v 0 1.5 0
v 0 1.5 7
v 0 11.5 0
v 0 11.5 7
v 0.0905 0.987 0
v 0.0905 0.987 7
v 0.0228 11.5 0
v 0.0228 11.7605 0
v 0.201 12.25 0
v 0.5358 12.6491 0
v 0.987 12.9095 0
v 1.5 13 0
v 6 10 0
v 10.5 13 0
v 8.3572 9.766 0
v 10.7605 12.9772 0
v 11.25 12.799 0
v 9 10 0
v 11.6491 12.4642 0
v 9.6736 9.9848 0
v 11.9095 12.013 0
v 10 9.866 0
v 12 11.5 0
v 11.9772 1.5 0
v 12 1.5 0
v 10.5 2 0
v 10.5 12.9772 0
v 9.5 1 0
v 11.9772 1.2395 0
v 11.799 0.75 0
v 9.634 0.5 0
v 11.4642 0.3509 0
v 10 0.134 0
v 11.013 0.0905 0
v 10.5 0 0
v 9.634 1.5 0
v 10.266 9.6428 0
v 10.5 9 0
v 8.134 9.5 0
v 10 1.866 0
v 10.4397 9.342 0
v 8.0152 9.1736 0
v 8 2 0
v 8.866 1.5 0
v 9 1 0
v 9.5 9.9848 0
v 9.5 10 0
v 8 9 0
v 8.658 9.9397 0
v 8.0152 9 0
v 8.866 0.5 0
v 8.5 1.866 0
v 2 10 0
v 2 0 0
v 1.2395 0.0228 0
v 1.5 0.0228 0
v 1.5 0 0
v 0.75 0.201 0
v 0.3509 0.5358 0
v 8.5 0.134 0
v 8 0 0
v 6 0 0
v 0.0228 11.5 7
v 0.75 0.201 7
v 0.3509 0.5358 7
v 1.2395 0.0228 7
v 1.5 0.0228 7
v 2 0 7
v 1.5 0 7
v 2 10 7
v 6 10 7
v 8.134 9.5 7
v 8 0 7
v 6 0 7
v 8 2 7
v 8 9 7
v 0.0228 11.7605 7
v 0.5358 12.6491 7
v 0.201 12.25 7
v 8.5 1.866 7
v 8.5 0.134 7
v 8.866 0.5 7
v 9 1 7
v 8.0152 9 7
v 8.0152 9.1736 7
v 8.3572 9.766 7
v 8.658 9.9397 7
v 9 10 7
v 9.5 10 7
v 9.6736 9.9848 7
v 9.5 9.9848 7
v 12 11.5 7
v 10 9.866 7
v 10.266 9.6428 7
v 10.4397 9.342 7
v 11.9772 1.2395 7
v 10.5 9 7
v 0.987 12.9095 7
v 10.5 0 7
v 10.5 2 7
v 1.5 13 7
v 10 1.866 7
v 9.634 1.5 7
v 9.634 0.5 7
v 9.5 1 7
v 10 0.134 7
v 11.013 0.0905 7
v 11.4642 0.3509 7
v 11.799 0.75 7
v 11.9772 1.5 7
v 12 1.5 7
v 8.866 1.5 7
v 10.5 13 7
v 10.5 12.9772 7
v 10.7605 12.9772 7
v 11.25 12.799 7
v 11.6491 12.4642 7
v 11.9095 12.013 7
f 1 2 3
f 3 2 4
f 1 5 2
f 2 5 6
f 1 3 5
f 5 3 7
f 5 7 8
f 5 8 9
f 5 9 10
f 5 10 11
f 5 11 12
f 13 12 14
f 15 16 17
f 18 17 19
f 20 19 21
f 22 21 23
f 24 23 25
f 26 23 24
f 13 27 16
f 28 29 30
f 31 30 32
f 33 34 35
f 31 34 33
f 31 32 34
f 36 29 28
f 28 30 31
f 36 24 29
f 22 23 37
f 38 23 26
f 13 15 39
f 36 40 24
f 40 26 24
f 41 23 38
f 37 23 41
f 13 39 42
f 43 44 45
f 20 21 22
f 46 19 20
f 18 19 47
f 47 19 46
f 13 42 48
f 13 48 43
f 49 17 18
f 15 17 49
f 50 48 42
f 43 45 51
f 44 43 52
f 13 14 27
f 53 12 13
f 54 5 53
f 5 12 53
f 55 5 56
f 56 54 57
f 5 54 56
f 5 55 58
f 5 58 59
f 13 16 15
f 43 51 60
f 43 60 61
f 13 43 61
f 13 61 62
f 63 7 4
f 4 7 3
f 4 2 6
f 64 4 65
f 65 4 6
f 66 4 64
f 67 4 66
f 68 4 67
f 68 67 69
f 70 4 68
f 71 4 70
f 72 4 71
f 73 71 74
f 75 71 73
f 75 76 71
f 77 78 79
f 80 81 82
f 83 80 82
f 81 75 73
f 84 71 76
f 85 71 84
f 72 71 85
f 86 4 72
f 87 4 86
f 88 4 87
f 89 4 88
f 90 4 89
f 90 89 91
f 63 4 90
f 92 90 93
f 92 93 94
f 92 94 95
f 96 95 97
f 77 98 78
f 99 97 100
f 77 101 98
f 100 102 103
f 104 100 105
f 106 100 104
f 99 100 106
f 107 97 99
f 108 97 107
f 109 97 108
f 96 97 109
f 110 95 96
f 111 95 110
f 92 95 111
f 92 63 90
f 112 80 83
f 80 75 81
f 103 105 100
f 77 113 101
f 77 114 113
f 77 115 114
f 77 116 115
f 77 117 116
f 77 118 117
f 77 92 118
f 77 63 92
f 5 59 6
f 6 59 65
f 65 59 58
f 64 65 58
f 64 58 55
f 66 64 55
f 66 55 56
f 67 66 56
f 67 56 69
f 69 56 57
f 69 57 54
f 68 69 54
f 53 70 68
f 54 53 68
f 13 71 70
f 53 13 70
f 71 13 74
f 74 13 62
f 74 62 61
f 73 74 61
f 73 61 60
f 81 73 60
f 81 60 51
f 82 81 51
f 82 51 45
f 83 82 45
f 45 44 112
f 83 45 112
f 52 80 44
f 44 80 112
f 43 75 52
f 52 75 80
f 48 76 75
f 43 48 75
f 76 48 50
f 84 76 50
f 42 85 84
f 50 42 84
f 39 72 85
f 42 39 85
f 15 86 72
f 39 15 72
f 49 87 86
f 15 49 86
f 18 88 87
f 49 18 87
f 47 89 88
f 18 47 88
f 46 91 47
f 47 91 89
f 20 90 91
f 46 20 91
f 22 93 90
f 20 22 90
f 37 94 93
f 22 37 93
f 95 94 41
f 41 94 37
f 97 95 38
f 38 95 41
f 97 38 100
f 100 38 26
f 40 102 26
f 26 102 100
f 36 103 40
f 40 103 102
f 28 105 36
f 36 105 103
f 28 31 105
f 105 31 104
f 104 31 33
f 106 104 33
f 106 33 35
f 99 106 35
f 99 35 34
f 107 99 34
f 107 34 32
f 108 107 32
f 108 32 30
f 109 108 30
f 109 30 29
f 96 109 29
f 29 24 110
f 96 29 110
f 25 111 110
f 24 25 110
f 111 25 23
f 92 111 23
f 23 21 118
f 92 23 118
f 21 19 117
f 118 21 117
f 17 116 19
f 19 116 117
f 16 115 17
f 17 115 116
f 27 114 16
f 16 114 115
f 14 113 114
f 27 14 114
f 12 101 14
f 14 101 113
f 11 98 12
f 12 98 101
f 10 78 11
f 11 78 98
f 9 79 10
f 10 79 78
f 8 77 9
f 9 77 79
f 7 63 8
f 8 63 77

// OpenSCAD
module fillet(radius, length) {
	difference() {
		translate([radius, radius, 0]) cube([2*radius, 2*radius, length], center = true);
		cylinder(h = length + 2, r = radius, center = true, $fn=18);
	}
}

module vnejsi_tvar() {
	difference () {
		cube ([12,13,7]);
		translate([1.5,1.5,5]) rotate([0,0,180]) fillet(1.5,12);
		translate([1.5,11.5,5]) rotate([0,0,90]) fillet(1.5,12);
		translate([10.5,11.5,5]) rotate([0,0,0]) fillet(1.5,12);
		translate([10.5,1.5,5]) rotate([0,0,-90]) fillet(1.5,12);
	}
}

module vnitrni_tvar() {
	translate([8,-1,-1]) difference() {
		cube ([2.5,11,10]);
		translate([2.5,2,-1]) cylinder(h=12, r = 1, $fn = 12);
		translate([0,2,-1]) cylinder(h=12, r = 1, $fn = 12);
		translate([1,10,5]) rotate([0,0,90]) fillet(1,12);
		translate([1.5,10,5]) rotate([0,0,0]) fillet(1,12);
	}
}

color("Khaki")
difference () {
	vnejsi_tvar();
	translate([2,-1,-1]) cube([4,11,10]);
	vnitrni_tvar();
}
